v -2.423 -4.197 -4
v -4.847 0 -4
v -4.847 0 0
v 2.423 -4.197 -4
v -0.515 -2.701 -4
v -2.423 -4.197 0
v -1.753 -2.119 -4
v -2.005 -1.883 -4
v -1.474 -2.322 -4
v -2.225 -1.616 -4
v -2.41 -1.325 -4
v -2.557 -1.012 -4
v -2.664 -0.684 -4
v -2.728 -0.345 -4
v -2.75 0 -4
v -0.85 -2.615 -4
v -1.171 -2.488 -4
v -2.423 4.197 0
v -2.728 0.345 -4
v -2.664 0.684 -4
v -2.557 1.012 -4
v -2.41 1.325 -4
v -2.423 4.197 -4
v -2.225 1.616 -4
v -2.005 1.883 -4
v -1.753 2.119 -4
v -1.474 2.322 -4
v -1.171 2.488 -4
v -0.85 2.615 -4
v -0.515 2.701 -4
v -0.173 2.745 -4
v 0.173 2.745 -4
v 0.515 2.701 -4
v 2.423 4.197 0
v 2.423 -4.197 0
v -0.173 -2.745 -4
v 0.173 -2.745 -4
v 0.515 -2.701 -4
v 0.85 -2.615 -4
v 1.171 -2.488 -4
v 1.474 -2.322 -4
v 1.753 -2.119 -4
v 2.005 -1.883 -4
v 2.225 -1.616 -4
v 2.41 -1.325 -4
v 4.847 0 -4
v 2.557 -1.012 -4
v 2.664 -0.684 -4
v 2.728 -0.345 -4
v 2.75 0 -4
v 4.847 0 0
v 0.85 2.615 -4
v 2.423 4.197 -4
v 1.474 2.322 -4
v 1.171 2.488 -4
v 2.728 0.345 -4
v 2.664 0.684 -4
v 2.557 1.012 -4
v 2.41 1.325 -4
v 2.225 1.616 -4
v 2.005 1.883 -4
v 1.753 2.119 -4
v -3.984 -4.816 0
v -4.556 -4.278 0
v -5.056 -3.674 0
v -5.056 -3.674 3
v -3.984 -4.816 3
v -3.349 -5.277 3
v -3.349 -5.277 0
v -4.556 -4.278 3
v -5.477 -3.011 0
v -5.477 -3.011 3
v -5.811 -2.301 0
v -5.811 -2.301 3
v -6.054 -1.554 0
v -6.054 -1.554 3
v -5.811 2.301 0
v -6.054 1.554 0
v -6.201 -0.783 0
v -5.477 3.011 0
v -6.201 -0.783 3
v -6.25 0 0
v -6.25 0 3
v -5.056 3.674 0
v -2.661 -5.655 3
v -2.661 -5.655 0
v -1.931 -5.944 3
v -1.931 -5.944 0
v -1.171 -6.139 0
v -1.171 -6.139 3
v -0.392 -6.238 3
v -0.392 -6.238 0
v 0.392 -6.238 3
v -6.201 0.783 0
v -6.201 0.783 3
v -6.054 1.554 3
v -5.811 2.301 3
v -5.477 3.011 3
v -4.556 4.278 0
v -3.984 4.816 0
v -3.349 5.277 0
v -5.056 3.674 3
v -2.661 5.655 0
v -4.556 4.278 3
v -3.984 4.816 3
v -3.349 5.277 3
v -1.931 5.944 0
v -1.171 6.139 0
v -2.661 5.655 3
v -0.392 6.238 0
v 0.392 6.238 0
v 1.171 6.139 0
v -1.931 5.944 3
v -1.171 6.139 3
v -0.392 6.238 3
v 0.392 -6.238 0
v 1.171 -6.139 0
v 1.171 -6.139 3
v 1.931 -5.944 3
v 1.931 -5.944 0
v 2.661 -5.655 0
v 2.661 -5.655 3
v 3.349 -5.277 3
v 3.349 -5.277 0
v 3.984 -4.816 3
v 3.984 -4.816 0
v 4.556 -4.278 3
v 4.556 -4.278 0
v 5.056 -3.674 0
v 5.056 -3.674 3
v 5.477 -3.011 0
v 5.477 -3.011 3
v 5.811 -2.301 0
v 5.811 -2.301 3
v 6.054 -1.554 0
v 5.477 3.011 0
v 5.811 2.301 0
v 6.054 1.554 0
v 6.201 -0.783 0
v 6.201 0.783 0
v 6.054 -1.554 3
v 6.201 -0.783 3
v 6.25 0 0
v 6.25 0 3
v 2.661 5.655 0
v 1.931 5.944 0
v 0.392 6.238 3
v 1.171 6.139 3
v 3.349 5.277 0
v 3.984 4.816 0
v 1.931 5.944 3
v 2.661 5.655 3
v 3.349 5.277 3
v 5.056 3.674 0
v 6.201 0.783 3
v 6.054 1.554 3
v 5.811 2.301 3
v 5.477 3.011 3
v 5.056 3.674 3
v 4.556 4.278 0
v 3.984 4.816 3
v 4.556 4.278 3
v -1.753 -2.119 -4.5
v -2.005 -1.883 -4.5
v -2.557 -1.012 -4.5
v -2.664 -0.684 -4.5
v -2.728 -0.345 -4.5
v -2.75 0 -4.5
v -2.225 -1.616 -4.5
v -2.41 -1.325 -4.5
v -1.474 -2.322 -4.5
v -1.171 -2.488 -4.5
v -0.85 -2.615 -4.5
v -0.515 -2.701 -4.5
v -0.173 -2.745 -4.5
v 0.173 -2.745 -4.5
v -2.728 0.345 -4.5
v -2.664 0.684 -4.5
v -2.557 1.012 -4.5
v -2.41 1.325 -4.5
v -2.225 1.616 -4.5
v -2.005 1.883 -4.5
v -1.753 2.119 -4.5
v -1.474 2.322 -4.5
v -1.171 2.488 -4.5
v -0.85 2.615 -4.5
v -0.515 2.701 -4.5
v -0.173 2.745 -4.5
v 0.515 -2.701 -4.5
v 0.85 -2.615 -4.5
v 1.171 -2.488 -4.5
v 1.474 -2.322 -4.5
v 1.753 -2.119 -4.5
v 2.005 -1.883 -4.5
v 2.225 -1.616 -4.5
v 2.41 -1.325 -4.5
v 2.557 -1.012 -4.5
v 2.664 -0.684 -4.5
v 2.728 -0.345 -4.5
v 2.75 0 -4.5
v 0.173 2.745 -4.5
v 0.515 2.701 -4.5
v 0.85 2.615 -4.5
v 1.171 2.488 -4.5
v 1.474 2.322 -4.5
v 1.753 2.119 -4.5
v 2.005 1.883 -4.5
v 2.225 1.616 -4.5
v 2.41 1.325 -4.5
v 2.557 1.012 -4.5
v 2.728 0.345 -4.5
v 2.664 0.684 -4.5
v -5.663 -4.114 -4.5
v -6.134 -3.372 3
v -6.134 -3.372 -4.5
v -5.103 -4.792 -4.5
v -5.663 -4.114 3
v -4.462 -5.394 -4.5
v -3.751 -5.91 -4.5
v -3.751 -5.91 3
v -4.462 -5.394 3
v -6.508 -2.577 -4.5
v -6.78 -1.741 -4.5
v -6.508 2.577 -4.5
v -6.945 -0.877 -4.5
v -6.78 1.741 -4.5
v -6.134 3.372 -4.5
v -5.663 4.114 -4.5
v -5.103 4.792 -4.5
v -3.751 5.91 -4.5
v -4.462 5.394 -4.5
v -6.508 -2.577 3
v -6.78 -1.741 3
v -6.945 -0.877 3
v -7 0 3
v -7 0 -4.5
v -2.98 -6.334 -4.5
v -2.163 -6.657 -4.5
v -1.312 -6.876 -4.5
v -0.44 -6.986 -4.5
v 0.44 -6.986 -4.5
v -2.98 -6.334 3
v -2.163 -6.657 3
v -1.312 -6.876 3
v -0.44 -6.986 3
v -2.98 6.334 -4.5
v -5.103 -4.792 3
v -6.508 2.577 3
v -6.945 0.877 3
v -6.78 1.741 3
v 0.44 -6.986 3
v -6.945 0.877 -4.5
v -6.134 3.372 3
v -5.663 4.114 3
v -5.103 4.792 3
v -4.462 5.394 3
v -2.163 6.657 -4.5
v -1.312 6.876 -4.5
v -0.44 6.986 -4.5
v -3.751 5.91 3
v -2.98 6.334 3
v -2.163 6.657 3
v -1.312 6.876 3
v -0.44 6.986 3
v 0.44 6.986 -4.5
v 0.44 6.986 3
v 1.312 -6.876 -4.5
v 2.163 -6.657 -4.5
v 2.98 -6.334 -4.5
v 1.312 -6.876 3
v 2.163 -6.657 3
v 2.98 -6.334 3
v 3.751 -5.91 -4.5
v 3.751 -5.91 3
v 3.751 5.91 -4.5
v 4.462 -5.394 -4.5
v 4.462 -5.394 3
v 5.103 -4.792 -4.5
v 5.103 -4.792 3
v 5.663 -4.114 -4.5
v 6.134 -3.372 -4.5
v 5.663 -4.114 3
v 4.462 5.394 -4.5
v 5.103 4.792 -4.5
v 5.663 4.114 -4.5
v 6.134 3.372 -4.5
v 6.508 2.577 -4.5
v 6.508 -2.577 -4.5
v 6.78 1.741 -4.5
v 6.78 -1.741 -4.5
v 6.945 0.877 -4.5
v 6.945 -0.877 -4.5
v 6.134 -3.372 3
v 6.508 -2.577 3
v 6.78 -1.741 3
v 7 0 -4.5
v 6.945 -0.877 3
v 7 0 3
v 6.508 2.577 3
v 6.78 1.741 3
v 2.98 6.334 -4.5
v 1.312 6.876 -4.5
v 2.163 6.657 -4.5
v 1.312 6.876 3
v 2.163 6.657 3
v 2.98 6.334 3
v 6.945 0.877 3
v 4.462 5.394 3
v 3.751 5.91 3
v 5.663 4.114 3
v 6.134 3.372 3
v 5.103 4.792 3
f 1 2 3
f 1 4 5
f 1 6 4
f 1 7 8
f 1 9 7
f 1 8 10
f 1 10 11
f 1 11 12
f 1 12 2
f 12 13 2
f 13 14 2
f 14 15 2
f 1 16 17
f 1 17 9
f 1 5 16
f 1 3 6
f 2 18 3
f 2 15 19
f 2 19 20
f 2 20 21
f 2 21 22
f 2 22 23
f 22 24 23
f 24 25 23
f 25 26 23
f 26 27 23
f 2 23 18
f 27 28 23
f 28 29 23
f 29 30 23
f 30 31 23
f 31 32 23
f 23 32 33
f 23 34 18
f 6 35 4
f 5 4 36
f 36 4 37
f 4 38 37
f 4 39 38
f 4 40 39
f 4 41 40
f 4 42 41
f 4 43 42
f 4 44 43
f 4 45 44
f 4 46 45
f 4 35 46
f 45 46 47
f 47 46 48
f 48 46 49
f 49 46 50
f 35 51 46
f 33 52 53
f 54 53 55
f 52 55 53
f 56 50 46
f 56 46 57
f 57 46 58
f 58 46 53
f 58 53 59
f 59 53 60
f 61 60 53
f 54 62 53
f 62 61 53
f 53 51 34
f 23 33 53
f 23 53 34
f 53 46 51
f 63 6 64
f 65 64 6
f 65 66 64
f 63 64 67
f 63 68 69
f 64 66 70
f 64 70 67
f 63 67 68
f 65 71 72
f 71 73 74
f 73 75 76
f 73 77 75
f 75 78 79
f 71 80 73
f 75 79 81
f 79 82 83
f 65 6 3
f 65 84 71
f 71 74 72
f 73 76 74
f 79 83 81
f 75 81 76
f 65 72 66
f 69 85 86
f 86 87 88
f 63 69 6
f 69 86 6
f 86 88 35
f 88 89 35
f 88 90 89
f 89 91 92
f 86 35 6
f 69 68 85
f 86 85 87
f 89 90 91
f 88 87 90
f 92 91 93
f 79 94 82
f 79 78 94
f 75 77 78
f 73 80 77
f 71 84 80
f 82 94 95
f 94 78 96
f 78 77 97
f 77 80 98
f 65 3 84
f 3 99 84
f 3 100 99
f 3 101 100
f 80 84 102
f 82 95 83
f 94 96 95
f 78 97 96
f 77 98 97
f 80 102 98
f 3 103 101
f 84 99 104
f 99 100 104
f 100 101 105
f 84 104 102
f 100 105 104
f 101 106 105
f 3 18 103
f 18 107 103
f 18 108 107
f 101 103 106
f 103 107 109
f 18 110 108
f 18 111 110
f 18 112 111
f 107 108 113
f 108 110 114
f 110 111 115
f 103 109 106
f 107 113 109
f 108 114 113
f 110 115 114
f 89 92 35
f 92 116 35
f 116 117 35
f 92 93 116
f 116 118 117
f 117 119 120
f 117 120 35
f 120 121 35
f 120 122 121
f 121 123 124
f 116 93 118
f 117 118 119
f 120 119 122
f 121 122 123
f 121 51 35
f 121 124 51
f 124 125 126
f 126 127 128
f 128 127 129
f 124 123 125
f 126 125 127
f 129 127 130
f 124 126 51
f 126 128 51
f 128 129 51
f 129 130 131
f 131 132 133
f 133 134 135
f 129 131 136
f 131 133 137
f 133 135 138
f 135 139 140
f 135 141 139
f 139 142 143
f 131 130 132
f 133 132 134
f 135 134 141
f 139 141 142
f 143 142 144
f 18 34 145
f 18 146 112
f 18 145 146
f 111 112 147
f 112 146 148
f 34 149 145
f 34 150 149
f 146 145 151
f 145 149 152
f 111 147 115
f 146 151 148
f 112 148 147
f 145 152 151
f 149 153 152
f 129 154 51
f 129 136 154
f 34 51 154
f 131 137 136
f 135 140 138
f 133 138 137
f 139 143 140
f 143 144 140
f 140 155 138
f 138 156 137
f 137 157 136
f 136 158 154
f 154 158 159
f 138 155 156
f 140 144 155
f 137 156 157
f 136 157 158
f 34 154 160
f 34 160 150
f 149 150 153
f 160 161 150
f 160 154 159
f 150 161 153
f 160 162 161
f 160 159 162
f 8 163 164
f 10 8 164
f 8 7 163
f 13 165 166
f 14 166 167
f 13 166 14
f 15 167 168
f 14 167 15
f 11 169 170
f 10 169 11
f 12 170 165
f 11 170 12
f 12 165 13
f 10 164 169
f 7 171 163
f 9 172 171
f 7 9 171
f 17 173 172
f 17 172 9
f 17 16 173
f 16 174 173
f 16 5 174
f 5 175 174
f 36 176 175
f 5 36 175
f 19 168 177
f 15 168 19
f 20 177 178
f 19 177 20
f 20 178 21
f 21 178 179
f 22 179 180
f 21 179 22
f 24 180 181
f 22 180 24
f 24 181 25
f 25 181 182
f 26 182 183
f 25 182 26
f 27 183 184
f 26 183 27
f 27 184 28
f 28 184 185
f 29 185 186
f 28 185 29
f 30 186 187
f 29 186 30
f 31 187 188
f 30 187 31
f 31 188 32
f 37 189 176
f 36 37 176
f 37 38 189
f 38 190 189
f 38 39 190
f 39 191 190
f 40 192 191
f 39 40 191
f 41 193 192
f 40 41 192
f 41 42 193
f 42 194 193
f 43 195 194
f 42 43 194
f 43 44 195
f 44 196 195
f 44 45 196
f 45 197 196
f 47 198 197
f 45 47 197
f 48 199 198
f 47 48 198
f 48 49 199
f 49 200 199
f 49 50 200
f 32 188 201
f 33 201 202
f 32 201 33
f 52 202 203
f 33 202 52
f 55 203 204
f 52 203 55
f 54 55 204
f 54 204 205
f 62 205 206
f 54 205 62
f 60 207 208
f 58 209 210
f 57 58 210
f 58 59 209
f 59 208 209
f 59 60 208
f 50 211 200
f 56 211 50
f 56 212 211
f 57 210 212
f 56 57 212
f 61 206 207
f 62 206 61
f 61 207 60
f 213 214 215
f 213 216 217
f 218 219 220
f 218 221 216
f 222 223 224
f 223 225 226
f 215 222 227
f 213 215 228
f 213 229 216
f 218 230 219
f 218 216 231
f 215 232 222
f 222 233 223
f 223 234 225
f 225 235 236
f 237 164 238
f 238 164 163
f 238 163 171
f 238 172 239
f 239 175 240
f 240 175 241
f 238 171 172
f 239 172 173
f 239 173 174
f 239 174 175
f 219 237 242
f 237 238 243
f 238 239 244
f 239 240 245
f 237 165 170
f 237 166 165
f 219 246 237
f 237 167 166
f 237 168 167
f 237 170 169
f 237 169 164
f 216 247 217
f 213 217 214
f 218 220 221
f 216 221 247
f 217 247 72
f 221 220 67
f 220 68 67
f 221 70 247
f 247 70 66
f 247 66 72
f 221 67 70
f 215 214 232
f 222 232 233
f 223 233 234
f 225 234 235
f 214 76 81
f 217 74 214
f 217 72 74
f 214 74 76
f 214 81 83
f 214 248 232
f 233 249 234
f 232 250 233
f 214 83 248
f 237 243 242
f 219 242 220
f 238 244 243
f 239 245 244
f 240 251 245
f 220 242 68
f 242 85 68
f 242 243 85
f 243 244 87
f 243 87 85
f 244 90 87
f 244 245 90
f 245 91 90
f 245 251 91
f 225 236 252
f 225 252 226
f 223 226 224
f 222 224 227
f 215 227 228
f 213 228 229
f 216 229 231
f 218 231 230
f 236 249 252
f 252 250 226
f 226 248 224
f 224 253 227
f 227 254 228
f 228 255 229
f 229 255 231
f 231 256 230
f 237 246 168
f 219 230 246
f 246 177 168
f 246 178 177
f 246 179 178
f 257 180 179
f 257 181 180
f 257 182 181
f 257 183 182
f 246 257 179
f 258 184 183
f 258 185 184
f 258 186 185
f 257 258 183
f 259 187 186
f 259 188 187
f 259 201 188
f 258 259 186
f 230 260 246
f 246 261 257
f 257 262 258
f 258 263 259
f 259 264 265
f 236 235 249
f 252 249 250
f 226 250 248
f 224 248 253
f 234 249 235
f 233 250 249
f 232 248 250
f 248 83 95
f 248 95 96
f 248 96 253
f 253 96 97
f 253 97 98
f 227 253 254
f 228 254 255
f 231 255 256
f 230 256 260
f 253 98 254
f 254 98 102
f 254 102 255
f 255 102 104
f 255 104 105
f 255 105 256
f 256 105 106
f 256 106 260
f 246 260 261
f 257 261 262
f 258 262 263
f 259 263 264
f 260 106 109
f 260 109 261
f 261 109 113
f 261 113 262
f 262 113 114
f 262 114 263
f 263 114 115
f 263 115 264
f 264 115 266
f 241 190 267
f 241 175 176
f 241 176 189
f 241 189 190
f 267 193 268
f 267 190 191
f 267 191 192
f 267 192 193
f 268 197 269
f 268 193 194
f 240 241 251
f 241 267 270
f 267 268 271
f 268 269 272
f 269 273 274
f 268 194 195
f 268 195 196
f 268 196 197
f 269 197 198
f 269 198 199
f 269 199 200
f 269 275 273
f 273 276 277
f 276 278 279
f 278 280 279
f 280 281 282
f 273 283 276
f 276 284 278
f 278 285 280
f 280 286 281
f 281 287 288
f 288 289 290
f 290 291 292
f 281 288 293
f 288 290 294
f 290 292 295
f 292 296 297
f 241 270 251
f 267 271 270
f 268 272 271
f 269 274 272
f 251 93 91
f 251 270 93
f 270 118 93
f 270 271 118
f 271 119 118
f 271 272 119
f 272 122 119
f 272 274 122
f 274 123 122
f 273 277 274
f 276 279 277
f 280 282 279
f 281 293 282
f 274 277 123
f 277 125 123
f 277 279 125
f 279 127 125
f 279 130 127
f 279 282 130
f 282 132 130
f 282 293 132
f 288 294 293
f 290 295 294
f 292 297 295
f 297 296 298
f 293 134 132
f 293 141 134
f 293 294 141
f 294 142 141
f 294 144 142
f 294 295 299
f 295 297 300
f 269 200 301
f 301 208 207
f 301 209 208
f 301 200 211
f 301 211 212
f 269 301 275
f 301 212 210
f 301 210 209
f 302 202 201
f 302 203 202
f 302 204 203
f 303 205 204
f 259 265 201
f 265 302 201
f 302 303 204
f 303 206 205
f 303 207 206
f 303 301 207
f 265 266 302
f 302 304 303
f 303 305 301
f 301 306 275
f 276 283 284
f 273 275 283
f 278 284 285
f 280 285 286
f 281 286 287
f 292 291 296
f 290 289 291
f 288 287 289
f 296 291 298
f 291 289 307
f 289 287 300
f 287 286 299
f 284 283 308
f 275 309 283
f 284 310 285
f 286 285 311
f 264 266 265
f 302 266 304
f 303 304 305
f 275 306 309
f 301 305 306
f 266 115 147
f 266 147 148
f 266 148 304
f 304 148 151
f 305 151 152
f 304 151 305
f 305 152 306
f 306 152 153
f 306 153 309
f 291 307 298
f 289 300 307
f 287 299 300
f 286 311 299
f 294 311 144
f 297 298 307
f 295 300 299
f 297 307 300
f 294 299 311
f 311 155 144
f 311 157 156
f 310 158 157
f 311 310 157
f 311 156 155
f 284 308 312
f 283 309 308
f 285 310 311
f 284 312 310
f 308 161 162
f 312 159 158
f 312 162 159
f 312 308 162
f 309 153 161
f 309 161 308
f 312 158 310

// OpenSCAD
$fn = 50;

difference() {
	union() {
		translate(v = [0, 0, -4.5]) {
			cylinder(h = 7.5, r = 7.0);
		}
	}
	union() {
		translate(v = [0, 0, 0]) {
			rotate(a = [0, 0, 0]) {
				difference() {
					union() {
						translate(v = [0, 0, -4]) {
							linear_extrude(height = 4) {
								polygon(points = [[4.8468, 0.0], [2.4234000000000004, 4.197451927062417], [-2.423399999999999, 4.197451927062417], [-4.8468, 5.935618106107392e-16], [-2.423400000000002, -4.197451927062416], [2.423399999999997, -4.197451927062419]]);
							}
						}
					}
					union();
				}
			}
		}
		#cylinder(h = 3, r = 6.25);
		#translate(v = [0, 0, -100.0]) {
			cylinder(h = 200, r = 2.75);
		}
	}
}
